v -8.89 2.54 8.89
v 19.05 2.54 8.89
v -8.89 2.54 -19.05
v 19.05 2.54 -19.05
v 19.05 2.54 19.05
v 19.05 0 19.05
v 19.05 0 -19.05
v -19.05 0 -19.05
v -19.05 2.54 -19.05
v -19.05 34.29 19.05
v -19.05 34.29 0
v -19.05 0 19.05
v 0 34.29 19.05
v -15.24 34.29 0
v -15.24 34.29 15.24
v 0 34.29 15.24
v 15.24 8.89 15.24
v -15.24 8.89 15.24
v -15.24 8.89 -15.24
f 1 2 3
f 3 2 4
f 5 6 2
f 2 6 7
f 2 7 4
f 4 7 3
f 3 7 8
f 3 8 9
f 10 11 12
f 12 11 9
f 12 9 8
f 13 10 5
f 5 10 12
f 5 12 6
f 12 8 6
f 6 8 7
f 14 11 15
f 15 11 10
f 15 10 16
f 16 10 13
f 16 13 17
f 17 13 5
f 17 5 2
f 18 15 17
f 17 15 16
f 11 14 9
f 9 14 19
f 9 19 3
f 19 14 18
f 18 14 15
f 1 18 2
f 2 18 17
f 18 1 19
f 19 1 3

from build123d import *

# Parameters (mm, degrees)
SKETCH1_W           = 38.1
SKETCH1_H           = 38.1
BOSS_EXTRUDE1_DEPTH = 2.54
SKETCH2_W           = 19.05
SKETCH2_H           = 19.05
BOSS_EXTRUDE2_DEPTH = 31.75
BOSS_EXTRUDE3_DEPTH = 3.81
BOSS_EXTRUDE4_DEPTH = 3.81
SKETCH5_W           = 15.24
SKETCH5_H           = 15.24
CUT_EXTRUDE1_DEPTH  = 31.75
CHAMFER5_SIZE       = 6.35


with BuildPart() as part:
    # Sketch1 → Boss-Extrude1 (new body)
    with BuildSketch(Plane(origin=(0, 0, 0), x_dir=(1, 0, 0), z_dir=(0, 1, 0))):
        Rectangle(SKETCH1_W, SKETCH1_H)
    extrude(amount=BOSS_EXTRUDE1_DEPTH)

    # Sketch2 → Boss-Extrude2 (add)
    with BuildSketch(Plane(origin=(0, 2.54, 0), x_dir=(1, 0, 0), z_dir=(0, 1, 0))):
        with Locations((-9.525, -9.525)):
            Rectangle(SKETCH2_W, SKETCH2_H)
    extrude(amount=BOSS_EXTRUDE2_DEPTH)

    # Sketch3 → Boss-Extrude3 (add)
    with BuildSketch(Plane.XY.offset(19.05)):
        Polygon((0, 34.29), (19.05, 2.54), (0, 2.54), align=None)
    extrude(amount=-BOSS_EXTRUDE3_DEPTH)

    # Sketch4 → Boss-Extrude4 (add)
    with BuildSketch(Plane.ZY.offset(19.05)):
        Polygon((0, 34.29), (0, 2.54), (-19.05, 2.54), align=None)
    extrude(amount=-BOSS_EXTRUDE4_DEPTH)

    # Sketch5 → Cut-Extrude1 (cut)
    with BuildSketch(Plane(origin=(0, 34.29, 0), x_dir=(1, 0, 0), z_dir=(0, 1, 0))):
        with Locations((-7.62, -7.62)):
            Rectangle(SKETCH5_W, SKETCH5_H)
    extrude(amount=-CUT_EXTRUDE1_DEPTH, mode=Mode.SUBTRACT)

    # Chamfer5
    chamfer5_edges = [part.edges().sort_by_distance(p)[0] for p in [
        (1.905, 2.54, 15.24),
        (-15.24, 2.54, -1.905),
    ]]
    chamfer(chamfer5_edges, length=CHAMFER5_SIZE)


solid = part.part
